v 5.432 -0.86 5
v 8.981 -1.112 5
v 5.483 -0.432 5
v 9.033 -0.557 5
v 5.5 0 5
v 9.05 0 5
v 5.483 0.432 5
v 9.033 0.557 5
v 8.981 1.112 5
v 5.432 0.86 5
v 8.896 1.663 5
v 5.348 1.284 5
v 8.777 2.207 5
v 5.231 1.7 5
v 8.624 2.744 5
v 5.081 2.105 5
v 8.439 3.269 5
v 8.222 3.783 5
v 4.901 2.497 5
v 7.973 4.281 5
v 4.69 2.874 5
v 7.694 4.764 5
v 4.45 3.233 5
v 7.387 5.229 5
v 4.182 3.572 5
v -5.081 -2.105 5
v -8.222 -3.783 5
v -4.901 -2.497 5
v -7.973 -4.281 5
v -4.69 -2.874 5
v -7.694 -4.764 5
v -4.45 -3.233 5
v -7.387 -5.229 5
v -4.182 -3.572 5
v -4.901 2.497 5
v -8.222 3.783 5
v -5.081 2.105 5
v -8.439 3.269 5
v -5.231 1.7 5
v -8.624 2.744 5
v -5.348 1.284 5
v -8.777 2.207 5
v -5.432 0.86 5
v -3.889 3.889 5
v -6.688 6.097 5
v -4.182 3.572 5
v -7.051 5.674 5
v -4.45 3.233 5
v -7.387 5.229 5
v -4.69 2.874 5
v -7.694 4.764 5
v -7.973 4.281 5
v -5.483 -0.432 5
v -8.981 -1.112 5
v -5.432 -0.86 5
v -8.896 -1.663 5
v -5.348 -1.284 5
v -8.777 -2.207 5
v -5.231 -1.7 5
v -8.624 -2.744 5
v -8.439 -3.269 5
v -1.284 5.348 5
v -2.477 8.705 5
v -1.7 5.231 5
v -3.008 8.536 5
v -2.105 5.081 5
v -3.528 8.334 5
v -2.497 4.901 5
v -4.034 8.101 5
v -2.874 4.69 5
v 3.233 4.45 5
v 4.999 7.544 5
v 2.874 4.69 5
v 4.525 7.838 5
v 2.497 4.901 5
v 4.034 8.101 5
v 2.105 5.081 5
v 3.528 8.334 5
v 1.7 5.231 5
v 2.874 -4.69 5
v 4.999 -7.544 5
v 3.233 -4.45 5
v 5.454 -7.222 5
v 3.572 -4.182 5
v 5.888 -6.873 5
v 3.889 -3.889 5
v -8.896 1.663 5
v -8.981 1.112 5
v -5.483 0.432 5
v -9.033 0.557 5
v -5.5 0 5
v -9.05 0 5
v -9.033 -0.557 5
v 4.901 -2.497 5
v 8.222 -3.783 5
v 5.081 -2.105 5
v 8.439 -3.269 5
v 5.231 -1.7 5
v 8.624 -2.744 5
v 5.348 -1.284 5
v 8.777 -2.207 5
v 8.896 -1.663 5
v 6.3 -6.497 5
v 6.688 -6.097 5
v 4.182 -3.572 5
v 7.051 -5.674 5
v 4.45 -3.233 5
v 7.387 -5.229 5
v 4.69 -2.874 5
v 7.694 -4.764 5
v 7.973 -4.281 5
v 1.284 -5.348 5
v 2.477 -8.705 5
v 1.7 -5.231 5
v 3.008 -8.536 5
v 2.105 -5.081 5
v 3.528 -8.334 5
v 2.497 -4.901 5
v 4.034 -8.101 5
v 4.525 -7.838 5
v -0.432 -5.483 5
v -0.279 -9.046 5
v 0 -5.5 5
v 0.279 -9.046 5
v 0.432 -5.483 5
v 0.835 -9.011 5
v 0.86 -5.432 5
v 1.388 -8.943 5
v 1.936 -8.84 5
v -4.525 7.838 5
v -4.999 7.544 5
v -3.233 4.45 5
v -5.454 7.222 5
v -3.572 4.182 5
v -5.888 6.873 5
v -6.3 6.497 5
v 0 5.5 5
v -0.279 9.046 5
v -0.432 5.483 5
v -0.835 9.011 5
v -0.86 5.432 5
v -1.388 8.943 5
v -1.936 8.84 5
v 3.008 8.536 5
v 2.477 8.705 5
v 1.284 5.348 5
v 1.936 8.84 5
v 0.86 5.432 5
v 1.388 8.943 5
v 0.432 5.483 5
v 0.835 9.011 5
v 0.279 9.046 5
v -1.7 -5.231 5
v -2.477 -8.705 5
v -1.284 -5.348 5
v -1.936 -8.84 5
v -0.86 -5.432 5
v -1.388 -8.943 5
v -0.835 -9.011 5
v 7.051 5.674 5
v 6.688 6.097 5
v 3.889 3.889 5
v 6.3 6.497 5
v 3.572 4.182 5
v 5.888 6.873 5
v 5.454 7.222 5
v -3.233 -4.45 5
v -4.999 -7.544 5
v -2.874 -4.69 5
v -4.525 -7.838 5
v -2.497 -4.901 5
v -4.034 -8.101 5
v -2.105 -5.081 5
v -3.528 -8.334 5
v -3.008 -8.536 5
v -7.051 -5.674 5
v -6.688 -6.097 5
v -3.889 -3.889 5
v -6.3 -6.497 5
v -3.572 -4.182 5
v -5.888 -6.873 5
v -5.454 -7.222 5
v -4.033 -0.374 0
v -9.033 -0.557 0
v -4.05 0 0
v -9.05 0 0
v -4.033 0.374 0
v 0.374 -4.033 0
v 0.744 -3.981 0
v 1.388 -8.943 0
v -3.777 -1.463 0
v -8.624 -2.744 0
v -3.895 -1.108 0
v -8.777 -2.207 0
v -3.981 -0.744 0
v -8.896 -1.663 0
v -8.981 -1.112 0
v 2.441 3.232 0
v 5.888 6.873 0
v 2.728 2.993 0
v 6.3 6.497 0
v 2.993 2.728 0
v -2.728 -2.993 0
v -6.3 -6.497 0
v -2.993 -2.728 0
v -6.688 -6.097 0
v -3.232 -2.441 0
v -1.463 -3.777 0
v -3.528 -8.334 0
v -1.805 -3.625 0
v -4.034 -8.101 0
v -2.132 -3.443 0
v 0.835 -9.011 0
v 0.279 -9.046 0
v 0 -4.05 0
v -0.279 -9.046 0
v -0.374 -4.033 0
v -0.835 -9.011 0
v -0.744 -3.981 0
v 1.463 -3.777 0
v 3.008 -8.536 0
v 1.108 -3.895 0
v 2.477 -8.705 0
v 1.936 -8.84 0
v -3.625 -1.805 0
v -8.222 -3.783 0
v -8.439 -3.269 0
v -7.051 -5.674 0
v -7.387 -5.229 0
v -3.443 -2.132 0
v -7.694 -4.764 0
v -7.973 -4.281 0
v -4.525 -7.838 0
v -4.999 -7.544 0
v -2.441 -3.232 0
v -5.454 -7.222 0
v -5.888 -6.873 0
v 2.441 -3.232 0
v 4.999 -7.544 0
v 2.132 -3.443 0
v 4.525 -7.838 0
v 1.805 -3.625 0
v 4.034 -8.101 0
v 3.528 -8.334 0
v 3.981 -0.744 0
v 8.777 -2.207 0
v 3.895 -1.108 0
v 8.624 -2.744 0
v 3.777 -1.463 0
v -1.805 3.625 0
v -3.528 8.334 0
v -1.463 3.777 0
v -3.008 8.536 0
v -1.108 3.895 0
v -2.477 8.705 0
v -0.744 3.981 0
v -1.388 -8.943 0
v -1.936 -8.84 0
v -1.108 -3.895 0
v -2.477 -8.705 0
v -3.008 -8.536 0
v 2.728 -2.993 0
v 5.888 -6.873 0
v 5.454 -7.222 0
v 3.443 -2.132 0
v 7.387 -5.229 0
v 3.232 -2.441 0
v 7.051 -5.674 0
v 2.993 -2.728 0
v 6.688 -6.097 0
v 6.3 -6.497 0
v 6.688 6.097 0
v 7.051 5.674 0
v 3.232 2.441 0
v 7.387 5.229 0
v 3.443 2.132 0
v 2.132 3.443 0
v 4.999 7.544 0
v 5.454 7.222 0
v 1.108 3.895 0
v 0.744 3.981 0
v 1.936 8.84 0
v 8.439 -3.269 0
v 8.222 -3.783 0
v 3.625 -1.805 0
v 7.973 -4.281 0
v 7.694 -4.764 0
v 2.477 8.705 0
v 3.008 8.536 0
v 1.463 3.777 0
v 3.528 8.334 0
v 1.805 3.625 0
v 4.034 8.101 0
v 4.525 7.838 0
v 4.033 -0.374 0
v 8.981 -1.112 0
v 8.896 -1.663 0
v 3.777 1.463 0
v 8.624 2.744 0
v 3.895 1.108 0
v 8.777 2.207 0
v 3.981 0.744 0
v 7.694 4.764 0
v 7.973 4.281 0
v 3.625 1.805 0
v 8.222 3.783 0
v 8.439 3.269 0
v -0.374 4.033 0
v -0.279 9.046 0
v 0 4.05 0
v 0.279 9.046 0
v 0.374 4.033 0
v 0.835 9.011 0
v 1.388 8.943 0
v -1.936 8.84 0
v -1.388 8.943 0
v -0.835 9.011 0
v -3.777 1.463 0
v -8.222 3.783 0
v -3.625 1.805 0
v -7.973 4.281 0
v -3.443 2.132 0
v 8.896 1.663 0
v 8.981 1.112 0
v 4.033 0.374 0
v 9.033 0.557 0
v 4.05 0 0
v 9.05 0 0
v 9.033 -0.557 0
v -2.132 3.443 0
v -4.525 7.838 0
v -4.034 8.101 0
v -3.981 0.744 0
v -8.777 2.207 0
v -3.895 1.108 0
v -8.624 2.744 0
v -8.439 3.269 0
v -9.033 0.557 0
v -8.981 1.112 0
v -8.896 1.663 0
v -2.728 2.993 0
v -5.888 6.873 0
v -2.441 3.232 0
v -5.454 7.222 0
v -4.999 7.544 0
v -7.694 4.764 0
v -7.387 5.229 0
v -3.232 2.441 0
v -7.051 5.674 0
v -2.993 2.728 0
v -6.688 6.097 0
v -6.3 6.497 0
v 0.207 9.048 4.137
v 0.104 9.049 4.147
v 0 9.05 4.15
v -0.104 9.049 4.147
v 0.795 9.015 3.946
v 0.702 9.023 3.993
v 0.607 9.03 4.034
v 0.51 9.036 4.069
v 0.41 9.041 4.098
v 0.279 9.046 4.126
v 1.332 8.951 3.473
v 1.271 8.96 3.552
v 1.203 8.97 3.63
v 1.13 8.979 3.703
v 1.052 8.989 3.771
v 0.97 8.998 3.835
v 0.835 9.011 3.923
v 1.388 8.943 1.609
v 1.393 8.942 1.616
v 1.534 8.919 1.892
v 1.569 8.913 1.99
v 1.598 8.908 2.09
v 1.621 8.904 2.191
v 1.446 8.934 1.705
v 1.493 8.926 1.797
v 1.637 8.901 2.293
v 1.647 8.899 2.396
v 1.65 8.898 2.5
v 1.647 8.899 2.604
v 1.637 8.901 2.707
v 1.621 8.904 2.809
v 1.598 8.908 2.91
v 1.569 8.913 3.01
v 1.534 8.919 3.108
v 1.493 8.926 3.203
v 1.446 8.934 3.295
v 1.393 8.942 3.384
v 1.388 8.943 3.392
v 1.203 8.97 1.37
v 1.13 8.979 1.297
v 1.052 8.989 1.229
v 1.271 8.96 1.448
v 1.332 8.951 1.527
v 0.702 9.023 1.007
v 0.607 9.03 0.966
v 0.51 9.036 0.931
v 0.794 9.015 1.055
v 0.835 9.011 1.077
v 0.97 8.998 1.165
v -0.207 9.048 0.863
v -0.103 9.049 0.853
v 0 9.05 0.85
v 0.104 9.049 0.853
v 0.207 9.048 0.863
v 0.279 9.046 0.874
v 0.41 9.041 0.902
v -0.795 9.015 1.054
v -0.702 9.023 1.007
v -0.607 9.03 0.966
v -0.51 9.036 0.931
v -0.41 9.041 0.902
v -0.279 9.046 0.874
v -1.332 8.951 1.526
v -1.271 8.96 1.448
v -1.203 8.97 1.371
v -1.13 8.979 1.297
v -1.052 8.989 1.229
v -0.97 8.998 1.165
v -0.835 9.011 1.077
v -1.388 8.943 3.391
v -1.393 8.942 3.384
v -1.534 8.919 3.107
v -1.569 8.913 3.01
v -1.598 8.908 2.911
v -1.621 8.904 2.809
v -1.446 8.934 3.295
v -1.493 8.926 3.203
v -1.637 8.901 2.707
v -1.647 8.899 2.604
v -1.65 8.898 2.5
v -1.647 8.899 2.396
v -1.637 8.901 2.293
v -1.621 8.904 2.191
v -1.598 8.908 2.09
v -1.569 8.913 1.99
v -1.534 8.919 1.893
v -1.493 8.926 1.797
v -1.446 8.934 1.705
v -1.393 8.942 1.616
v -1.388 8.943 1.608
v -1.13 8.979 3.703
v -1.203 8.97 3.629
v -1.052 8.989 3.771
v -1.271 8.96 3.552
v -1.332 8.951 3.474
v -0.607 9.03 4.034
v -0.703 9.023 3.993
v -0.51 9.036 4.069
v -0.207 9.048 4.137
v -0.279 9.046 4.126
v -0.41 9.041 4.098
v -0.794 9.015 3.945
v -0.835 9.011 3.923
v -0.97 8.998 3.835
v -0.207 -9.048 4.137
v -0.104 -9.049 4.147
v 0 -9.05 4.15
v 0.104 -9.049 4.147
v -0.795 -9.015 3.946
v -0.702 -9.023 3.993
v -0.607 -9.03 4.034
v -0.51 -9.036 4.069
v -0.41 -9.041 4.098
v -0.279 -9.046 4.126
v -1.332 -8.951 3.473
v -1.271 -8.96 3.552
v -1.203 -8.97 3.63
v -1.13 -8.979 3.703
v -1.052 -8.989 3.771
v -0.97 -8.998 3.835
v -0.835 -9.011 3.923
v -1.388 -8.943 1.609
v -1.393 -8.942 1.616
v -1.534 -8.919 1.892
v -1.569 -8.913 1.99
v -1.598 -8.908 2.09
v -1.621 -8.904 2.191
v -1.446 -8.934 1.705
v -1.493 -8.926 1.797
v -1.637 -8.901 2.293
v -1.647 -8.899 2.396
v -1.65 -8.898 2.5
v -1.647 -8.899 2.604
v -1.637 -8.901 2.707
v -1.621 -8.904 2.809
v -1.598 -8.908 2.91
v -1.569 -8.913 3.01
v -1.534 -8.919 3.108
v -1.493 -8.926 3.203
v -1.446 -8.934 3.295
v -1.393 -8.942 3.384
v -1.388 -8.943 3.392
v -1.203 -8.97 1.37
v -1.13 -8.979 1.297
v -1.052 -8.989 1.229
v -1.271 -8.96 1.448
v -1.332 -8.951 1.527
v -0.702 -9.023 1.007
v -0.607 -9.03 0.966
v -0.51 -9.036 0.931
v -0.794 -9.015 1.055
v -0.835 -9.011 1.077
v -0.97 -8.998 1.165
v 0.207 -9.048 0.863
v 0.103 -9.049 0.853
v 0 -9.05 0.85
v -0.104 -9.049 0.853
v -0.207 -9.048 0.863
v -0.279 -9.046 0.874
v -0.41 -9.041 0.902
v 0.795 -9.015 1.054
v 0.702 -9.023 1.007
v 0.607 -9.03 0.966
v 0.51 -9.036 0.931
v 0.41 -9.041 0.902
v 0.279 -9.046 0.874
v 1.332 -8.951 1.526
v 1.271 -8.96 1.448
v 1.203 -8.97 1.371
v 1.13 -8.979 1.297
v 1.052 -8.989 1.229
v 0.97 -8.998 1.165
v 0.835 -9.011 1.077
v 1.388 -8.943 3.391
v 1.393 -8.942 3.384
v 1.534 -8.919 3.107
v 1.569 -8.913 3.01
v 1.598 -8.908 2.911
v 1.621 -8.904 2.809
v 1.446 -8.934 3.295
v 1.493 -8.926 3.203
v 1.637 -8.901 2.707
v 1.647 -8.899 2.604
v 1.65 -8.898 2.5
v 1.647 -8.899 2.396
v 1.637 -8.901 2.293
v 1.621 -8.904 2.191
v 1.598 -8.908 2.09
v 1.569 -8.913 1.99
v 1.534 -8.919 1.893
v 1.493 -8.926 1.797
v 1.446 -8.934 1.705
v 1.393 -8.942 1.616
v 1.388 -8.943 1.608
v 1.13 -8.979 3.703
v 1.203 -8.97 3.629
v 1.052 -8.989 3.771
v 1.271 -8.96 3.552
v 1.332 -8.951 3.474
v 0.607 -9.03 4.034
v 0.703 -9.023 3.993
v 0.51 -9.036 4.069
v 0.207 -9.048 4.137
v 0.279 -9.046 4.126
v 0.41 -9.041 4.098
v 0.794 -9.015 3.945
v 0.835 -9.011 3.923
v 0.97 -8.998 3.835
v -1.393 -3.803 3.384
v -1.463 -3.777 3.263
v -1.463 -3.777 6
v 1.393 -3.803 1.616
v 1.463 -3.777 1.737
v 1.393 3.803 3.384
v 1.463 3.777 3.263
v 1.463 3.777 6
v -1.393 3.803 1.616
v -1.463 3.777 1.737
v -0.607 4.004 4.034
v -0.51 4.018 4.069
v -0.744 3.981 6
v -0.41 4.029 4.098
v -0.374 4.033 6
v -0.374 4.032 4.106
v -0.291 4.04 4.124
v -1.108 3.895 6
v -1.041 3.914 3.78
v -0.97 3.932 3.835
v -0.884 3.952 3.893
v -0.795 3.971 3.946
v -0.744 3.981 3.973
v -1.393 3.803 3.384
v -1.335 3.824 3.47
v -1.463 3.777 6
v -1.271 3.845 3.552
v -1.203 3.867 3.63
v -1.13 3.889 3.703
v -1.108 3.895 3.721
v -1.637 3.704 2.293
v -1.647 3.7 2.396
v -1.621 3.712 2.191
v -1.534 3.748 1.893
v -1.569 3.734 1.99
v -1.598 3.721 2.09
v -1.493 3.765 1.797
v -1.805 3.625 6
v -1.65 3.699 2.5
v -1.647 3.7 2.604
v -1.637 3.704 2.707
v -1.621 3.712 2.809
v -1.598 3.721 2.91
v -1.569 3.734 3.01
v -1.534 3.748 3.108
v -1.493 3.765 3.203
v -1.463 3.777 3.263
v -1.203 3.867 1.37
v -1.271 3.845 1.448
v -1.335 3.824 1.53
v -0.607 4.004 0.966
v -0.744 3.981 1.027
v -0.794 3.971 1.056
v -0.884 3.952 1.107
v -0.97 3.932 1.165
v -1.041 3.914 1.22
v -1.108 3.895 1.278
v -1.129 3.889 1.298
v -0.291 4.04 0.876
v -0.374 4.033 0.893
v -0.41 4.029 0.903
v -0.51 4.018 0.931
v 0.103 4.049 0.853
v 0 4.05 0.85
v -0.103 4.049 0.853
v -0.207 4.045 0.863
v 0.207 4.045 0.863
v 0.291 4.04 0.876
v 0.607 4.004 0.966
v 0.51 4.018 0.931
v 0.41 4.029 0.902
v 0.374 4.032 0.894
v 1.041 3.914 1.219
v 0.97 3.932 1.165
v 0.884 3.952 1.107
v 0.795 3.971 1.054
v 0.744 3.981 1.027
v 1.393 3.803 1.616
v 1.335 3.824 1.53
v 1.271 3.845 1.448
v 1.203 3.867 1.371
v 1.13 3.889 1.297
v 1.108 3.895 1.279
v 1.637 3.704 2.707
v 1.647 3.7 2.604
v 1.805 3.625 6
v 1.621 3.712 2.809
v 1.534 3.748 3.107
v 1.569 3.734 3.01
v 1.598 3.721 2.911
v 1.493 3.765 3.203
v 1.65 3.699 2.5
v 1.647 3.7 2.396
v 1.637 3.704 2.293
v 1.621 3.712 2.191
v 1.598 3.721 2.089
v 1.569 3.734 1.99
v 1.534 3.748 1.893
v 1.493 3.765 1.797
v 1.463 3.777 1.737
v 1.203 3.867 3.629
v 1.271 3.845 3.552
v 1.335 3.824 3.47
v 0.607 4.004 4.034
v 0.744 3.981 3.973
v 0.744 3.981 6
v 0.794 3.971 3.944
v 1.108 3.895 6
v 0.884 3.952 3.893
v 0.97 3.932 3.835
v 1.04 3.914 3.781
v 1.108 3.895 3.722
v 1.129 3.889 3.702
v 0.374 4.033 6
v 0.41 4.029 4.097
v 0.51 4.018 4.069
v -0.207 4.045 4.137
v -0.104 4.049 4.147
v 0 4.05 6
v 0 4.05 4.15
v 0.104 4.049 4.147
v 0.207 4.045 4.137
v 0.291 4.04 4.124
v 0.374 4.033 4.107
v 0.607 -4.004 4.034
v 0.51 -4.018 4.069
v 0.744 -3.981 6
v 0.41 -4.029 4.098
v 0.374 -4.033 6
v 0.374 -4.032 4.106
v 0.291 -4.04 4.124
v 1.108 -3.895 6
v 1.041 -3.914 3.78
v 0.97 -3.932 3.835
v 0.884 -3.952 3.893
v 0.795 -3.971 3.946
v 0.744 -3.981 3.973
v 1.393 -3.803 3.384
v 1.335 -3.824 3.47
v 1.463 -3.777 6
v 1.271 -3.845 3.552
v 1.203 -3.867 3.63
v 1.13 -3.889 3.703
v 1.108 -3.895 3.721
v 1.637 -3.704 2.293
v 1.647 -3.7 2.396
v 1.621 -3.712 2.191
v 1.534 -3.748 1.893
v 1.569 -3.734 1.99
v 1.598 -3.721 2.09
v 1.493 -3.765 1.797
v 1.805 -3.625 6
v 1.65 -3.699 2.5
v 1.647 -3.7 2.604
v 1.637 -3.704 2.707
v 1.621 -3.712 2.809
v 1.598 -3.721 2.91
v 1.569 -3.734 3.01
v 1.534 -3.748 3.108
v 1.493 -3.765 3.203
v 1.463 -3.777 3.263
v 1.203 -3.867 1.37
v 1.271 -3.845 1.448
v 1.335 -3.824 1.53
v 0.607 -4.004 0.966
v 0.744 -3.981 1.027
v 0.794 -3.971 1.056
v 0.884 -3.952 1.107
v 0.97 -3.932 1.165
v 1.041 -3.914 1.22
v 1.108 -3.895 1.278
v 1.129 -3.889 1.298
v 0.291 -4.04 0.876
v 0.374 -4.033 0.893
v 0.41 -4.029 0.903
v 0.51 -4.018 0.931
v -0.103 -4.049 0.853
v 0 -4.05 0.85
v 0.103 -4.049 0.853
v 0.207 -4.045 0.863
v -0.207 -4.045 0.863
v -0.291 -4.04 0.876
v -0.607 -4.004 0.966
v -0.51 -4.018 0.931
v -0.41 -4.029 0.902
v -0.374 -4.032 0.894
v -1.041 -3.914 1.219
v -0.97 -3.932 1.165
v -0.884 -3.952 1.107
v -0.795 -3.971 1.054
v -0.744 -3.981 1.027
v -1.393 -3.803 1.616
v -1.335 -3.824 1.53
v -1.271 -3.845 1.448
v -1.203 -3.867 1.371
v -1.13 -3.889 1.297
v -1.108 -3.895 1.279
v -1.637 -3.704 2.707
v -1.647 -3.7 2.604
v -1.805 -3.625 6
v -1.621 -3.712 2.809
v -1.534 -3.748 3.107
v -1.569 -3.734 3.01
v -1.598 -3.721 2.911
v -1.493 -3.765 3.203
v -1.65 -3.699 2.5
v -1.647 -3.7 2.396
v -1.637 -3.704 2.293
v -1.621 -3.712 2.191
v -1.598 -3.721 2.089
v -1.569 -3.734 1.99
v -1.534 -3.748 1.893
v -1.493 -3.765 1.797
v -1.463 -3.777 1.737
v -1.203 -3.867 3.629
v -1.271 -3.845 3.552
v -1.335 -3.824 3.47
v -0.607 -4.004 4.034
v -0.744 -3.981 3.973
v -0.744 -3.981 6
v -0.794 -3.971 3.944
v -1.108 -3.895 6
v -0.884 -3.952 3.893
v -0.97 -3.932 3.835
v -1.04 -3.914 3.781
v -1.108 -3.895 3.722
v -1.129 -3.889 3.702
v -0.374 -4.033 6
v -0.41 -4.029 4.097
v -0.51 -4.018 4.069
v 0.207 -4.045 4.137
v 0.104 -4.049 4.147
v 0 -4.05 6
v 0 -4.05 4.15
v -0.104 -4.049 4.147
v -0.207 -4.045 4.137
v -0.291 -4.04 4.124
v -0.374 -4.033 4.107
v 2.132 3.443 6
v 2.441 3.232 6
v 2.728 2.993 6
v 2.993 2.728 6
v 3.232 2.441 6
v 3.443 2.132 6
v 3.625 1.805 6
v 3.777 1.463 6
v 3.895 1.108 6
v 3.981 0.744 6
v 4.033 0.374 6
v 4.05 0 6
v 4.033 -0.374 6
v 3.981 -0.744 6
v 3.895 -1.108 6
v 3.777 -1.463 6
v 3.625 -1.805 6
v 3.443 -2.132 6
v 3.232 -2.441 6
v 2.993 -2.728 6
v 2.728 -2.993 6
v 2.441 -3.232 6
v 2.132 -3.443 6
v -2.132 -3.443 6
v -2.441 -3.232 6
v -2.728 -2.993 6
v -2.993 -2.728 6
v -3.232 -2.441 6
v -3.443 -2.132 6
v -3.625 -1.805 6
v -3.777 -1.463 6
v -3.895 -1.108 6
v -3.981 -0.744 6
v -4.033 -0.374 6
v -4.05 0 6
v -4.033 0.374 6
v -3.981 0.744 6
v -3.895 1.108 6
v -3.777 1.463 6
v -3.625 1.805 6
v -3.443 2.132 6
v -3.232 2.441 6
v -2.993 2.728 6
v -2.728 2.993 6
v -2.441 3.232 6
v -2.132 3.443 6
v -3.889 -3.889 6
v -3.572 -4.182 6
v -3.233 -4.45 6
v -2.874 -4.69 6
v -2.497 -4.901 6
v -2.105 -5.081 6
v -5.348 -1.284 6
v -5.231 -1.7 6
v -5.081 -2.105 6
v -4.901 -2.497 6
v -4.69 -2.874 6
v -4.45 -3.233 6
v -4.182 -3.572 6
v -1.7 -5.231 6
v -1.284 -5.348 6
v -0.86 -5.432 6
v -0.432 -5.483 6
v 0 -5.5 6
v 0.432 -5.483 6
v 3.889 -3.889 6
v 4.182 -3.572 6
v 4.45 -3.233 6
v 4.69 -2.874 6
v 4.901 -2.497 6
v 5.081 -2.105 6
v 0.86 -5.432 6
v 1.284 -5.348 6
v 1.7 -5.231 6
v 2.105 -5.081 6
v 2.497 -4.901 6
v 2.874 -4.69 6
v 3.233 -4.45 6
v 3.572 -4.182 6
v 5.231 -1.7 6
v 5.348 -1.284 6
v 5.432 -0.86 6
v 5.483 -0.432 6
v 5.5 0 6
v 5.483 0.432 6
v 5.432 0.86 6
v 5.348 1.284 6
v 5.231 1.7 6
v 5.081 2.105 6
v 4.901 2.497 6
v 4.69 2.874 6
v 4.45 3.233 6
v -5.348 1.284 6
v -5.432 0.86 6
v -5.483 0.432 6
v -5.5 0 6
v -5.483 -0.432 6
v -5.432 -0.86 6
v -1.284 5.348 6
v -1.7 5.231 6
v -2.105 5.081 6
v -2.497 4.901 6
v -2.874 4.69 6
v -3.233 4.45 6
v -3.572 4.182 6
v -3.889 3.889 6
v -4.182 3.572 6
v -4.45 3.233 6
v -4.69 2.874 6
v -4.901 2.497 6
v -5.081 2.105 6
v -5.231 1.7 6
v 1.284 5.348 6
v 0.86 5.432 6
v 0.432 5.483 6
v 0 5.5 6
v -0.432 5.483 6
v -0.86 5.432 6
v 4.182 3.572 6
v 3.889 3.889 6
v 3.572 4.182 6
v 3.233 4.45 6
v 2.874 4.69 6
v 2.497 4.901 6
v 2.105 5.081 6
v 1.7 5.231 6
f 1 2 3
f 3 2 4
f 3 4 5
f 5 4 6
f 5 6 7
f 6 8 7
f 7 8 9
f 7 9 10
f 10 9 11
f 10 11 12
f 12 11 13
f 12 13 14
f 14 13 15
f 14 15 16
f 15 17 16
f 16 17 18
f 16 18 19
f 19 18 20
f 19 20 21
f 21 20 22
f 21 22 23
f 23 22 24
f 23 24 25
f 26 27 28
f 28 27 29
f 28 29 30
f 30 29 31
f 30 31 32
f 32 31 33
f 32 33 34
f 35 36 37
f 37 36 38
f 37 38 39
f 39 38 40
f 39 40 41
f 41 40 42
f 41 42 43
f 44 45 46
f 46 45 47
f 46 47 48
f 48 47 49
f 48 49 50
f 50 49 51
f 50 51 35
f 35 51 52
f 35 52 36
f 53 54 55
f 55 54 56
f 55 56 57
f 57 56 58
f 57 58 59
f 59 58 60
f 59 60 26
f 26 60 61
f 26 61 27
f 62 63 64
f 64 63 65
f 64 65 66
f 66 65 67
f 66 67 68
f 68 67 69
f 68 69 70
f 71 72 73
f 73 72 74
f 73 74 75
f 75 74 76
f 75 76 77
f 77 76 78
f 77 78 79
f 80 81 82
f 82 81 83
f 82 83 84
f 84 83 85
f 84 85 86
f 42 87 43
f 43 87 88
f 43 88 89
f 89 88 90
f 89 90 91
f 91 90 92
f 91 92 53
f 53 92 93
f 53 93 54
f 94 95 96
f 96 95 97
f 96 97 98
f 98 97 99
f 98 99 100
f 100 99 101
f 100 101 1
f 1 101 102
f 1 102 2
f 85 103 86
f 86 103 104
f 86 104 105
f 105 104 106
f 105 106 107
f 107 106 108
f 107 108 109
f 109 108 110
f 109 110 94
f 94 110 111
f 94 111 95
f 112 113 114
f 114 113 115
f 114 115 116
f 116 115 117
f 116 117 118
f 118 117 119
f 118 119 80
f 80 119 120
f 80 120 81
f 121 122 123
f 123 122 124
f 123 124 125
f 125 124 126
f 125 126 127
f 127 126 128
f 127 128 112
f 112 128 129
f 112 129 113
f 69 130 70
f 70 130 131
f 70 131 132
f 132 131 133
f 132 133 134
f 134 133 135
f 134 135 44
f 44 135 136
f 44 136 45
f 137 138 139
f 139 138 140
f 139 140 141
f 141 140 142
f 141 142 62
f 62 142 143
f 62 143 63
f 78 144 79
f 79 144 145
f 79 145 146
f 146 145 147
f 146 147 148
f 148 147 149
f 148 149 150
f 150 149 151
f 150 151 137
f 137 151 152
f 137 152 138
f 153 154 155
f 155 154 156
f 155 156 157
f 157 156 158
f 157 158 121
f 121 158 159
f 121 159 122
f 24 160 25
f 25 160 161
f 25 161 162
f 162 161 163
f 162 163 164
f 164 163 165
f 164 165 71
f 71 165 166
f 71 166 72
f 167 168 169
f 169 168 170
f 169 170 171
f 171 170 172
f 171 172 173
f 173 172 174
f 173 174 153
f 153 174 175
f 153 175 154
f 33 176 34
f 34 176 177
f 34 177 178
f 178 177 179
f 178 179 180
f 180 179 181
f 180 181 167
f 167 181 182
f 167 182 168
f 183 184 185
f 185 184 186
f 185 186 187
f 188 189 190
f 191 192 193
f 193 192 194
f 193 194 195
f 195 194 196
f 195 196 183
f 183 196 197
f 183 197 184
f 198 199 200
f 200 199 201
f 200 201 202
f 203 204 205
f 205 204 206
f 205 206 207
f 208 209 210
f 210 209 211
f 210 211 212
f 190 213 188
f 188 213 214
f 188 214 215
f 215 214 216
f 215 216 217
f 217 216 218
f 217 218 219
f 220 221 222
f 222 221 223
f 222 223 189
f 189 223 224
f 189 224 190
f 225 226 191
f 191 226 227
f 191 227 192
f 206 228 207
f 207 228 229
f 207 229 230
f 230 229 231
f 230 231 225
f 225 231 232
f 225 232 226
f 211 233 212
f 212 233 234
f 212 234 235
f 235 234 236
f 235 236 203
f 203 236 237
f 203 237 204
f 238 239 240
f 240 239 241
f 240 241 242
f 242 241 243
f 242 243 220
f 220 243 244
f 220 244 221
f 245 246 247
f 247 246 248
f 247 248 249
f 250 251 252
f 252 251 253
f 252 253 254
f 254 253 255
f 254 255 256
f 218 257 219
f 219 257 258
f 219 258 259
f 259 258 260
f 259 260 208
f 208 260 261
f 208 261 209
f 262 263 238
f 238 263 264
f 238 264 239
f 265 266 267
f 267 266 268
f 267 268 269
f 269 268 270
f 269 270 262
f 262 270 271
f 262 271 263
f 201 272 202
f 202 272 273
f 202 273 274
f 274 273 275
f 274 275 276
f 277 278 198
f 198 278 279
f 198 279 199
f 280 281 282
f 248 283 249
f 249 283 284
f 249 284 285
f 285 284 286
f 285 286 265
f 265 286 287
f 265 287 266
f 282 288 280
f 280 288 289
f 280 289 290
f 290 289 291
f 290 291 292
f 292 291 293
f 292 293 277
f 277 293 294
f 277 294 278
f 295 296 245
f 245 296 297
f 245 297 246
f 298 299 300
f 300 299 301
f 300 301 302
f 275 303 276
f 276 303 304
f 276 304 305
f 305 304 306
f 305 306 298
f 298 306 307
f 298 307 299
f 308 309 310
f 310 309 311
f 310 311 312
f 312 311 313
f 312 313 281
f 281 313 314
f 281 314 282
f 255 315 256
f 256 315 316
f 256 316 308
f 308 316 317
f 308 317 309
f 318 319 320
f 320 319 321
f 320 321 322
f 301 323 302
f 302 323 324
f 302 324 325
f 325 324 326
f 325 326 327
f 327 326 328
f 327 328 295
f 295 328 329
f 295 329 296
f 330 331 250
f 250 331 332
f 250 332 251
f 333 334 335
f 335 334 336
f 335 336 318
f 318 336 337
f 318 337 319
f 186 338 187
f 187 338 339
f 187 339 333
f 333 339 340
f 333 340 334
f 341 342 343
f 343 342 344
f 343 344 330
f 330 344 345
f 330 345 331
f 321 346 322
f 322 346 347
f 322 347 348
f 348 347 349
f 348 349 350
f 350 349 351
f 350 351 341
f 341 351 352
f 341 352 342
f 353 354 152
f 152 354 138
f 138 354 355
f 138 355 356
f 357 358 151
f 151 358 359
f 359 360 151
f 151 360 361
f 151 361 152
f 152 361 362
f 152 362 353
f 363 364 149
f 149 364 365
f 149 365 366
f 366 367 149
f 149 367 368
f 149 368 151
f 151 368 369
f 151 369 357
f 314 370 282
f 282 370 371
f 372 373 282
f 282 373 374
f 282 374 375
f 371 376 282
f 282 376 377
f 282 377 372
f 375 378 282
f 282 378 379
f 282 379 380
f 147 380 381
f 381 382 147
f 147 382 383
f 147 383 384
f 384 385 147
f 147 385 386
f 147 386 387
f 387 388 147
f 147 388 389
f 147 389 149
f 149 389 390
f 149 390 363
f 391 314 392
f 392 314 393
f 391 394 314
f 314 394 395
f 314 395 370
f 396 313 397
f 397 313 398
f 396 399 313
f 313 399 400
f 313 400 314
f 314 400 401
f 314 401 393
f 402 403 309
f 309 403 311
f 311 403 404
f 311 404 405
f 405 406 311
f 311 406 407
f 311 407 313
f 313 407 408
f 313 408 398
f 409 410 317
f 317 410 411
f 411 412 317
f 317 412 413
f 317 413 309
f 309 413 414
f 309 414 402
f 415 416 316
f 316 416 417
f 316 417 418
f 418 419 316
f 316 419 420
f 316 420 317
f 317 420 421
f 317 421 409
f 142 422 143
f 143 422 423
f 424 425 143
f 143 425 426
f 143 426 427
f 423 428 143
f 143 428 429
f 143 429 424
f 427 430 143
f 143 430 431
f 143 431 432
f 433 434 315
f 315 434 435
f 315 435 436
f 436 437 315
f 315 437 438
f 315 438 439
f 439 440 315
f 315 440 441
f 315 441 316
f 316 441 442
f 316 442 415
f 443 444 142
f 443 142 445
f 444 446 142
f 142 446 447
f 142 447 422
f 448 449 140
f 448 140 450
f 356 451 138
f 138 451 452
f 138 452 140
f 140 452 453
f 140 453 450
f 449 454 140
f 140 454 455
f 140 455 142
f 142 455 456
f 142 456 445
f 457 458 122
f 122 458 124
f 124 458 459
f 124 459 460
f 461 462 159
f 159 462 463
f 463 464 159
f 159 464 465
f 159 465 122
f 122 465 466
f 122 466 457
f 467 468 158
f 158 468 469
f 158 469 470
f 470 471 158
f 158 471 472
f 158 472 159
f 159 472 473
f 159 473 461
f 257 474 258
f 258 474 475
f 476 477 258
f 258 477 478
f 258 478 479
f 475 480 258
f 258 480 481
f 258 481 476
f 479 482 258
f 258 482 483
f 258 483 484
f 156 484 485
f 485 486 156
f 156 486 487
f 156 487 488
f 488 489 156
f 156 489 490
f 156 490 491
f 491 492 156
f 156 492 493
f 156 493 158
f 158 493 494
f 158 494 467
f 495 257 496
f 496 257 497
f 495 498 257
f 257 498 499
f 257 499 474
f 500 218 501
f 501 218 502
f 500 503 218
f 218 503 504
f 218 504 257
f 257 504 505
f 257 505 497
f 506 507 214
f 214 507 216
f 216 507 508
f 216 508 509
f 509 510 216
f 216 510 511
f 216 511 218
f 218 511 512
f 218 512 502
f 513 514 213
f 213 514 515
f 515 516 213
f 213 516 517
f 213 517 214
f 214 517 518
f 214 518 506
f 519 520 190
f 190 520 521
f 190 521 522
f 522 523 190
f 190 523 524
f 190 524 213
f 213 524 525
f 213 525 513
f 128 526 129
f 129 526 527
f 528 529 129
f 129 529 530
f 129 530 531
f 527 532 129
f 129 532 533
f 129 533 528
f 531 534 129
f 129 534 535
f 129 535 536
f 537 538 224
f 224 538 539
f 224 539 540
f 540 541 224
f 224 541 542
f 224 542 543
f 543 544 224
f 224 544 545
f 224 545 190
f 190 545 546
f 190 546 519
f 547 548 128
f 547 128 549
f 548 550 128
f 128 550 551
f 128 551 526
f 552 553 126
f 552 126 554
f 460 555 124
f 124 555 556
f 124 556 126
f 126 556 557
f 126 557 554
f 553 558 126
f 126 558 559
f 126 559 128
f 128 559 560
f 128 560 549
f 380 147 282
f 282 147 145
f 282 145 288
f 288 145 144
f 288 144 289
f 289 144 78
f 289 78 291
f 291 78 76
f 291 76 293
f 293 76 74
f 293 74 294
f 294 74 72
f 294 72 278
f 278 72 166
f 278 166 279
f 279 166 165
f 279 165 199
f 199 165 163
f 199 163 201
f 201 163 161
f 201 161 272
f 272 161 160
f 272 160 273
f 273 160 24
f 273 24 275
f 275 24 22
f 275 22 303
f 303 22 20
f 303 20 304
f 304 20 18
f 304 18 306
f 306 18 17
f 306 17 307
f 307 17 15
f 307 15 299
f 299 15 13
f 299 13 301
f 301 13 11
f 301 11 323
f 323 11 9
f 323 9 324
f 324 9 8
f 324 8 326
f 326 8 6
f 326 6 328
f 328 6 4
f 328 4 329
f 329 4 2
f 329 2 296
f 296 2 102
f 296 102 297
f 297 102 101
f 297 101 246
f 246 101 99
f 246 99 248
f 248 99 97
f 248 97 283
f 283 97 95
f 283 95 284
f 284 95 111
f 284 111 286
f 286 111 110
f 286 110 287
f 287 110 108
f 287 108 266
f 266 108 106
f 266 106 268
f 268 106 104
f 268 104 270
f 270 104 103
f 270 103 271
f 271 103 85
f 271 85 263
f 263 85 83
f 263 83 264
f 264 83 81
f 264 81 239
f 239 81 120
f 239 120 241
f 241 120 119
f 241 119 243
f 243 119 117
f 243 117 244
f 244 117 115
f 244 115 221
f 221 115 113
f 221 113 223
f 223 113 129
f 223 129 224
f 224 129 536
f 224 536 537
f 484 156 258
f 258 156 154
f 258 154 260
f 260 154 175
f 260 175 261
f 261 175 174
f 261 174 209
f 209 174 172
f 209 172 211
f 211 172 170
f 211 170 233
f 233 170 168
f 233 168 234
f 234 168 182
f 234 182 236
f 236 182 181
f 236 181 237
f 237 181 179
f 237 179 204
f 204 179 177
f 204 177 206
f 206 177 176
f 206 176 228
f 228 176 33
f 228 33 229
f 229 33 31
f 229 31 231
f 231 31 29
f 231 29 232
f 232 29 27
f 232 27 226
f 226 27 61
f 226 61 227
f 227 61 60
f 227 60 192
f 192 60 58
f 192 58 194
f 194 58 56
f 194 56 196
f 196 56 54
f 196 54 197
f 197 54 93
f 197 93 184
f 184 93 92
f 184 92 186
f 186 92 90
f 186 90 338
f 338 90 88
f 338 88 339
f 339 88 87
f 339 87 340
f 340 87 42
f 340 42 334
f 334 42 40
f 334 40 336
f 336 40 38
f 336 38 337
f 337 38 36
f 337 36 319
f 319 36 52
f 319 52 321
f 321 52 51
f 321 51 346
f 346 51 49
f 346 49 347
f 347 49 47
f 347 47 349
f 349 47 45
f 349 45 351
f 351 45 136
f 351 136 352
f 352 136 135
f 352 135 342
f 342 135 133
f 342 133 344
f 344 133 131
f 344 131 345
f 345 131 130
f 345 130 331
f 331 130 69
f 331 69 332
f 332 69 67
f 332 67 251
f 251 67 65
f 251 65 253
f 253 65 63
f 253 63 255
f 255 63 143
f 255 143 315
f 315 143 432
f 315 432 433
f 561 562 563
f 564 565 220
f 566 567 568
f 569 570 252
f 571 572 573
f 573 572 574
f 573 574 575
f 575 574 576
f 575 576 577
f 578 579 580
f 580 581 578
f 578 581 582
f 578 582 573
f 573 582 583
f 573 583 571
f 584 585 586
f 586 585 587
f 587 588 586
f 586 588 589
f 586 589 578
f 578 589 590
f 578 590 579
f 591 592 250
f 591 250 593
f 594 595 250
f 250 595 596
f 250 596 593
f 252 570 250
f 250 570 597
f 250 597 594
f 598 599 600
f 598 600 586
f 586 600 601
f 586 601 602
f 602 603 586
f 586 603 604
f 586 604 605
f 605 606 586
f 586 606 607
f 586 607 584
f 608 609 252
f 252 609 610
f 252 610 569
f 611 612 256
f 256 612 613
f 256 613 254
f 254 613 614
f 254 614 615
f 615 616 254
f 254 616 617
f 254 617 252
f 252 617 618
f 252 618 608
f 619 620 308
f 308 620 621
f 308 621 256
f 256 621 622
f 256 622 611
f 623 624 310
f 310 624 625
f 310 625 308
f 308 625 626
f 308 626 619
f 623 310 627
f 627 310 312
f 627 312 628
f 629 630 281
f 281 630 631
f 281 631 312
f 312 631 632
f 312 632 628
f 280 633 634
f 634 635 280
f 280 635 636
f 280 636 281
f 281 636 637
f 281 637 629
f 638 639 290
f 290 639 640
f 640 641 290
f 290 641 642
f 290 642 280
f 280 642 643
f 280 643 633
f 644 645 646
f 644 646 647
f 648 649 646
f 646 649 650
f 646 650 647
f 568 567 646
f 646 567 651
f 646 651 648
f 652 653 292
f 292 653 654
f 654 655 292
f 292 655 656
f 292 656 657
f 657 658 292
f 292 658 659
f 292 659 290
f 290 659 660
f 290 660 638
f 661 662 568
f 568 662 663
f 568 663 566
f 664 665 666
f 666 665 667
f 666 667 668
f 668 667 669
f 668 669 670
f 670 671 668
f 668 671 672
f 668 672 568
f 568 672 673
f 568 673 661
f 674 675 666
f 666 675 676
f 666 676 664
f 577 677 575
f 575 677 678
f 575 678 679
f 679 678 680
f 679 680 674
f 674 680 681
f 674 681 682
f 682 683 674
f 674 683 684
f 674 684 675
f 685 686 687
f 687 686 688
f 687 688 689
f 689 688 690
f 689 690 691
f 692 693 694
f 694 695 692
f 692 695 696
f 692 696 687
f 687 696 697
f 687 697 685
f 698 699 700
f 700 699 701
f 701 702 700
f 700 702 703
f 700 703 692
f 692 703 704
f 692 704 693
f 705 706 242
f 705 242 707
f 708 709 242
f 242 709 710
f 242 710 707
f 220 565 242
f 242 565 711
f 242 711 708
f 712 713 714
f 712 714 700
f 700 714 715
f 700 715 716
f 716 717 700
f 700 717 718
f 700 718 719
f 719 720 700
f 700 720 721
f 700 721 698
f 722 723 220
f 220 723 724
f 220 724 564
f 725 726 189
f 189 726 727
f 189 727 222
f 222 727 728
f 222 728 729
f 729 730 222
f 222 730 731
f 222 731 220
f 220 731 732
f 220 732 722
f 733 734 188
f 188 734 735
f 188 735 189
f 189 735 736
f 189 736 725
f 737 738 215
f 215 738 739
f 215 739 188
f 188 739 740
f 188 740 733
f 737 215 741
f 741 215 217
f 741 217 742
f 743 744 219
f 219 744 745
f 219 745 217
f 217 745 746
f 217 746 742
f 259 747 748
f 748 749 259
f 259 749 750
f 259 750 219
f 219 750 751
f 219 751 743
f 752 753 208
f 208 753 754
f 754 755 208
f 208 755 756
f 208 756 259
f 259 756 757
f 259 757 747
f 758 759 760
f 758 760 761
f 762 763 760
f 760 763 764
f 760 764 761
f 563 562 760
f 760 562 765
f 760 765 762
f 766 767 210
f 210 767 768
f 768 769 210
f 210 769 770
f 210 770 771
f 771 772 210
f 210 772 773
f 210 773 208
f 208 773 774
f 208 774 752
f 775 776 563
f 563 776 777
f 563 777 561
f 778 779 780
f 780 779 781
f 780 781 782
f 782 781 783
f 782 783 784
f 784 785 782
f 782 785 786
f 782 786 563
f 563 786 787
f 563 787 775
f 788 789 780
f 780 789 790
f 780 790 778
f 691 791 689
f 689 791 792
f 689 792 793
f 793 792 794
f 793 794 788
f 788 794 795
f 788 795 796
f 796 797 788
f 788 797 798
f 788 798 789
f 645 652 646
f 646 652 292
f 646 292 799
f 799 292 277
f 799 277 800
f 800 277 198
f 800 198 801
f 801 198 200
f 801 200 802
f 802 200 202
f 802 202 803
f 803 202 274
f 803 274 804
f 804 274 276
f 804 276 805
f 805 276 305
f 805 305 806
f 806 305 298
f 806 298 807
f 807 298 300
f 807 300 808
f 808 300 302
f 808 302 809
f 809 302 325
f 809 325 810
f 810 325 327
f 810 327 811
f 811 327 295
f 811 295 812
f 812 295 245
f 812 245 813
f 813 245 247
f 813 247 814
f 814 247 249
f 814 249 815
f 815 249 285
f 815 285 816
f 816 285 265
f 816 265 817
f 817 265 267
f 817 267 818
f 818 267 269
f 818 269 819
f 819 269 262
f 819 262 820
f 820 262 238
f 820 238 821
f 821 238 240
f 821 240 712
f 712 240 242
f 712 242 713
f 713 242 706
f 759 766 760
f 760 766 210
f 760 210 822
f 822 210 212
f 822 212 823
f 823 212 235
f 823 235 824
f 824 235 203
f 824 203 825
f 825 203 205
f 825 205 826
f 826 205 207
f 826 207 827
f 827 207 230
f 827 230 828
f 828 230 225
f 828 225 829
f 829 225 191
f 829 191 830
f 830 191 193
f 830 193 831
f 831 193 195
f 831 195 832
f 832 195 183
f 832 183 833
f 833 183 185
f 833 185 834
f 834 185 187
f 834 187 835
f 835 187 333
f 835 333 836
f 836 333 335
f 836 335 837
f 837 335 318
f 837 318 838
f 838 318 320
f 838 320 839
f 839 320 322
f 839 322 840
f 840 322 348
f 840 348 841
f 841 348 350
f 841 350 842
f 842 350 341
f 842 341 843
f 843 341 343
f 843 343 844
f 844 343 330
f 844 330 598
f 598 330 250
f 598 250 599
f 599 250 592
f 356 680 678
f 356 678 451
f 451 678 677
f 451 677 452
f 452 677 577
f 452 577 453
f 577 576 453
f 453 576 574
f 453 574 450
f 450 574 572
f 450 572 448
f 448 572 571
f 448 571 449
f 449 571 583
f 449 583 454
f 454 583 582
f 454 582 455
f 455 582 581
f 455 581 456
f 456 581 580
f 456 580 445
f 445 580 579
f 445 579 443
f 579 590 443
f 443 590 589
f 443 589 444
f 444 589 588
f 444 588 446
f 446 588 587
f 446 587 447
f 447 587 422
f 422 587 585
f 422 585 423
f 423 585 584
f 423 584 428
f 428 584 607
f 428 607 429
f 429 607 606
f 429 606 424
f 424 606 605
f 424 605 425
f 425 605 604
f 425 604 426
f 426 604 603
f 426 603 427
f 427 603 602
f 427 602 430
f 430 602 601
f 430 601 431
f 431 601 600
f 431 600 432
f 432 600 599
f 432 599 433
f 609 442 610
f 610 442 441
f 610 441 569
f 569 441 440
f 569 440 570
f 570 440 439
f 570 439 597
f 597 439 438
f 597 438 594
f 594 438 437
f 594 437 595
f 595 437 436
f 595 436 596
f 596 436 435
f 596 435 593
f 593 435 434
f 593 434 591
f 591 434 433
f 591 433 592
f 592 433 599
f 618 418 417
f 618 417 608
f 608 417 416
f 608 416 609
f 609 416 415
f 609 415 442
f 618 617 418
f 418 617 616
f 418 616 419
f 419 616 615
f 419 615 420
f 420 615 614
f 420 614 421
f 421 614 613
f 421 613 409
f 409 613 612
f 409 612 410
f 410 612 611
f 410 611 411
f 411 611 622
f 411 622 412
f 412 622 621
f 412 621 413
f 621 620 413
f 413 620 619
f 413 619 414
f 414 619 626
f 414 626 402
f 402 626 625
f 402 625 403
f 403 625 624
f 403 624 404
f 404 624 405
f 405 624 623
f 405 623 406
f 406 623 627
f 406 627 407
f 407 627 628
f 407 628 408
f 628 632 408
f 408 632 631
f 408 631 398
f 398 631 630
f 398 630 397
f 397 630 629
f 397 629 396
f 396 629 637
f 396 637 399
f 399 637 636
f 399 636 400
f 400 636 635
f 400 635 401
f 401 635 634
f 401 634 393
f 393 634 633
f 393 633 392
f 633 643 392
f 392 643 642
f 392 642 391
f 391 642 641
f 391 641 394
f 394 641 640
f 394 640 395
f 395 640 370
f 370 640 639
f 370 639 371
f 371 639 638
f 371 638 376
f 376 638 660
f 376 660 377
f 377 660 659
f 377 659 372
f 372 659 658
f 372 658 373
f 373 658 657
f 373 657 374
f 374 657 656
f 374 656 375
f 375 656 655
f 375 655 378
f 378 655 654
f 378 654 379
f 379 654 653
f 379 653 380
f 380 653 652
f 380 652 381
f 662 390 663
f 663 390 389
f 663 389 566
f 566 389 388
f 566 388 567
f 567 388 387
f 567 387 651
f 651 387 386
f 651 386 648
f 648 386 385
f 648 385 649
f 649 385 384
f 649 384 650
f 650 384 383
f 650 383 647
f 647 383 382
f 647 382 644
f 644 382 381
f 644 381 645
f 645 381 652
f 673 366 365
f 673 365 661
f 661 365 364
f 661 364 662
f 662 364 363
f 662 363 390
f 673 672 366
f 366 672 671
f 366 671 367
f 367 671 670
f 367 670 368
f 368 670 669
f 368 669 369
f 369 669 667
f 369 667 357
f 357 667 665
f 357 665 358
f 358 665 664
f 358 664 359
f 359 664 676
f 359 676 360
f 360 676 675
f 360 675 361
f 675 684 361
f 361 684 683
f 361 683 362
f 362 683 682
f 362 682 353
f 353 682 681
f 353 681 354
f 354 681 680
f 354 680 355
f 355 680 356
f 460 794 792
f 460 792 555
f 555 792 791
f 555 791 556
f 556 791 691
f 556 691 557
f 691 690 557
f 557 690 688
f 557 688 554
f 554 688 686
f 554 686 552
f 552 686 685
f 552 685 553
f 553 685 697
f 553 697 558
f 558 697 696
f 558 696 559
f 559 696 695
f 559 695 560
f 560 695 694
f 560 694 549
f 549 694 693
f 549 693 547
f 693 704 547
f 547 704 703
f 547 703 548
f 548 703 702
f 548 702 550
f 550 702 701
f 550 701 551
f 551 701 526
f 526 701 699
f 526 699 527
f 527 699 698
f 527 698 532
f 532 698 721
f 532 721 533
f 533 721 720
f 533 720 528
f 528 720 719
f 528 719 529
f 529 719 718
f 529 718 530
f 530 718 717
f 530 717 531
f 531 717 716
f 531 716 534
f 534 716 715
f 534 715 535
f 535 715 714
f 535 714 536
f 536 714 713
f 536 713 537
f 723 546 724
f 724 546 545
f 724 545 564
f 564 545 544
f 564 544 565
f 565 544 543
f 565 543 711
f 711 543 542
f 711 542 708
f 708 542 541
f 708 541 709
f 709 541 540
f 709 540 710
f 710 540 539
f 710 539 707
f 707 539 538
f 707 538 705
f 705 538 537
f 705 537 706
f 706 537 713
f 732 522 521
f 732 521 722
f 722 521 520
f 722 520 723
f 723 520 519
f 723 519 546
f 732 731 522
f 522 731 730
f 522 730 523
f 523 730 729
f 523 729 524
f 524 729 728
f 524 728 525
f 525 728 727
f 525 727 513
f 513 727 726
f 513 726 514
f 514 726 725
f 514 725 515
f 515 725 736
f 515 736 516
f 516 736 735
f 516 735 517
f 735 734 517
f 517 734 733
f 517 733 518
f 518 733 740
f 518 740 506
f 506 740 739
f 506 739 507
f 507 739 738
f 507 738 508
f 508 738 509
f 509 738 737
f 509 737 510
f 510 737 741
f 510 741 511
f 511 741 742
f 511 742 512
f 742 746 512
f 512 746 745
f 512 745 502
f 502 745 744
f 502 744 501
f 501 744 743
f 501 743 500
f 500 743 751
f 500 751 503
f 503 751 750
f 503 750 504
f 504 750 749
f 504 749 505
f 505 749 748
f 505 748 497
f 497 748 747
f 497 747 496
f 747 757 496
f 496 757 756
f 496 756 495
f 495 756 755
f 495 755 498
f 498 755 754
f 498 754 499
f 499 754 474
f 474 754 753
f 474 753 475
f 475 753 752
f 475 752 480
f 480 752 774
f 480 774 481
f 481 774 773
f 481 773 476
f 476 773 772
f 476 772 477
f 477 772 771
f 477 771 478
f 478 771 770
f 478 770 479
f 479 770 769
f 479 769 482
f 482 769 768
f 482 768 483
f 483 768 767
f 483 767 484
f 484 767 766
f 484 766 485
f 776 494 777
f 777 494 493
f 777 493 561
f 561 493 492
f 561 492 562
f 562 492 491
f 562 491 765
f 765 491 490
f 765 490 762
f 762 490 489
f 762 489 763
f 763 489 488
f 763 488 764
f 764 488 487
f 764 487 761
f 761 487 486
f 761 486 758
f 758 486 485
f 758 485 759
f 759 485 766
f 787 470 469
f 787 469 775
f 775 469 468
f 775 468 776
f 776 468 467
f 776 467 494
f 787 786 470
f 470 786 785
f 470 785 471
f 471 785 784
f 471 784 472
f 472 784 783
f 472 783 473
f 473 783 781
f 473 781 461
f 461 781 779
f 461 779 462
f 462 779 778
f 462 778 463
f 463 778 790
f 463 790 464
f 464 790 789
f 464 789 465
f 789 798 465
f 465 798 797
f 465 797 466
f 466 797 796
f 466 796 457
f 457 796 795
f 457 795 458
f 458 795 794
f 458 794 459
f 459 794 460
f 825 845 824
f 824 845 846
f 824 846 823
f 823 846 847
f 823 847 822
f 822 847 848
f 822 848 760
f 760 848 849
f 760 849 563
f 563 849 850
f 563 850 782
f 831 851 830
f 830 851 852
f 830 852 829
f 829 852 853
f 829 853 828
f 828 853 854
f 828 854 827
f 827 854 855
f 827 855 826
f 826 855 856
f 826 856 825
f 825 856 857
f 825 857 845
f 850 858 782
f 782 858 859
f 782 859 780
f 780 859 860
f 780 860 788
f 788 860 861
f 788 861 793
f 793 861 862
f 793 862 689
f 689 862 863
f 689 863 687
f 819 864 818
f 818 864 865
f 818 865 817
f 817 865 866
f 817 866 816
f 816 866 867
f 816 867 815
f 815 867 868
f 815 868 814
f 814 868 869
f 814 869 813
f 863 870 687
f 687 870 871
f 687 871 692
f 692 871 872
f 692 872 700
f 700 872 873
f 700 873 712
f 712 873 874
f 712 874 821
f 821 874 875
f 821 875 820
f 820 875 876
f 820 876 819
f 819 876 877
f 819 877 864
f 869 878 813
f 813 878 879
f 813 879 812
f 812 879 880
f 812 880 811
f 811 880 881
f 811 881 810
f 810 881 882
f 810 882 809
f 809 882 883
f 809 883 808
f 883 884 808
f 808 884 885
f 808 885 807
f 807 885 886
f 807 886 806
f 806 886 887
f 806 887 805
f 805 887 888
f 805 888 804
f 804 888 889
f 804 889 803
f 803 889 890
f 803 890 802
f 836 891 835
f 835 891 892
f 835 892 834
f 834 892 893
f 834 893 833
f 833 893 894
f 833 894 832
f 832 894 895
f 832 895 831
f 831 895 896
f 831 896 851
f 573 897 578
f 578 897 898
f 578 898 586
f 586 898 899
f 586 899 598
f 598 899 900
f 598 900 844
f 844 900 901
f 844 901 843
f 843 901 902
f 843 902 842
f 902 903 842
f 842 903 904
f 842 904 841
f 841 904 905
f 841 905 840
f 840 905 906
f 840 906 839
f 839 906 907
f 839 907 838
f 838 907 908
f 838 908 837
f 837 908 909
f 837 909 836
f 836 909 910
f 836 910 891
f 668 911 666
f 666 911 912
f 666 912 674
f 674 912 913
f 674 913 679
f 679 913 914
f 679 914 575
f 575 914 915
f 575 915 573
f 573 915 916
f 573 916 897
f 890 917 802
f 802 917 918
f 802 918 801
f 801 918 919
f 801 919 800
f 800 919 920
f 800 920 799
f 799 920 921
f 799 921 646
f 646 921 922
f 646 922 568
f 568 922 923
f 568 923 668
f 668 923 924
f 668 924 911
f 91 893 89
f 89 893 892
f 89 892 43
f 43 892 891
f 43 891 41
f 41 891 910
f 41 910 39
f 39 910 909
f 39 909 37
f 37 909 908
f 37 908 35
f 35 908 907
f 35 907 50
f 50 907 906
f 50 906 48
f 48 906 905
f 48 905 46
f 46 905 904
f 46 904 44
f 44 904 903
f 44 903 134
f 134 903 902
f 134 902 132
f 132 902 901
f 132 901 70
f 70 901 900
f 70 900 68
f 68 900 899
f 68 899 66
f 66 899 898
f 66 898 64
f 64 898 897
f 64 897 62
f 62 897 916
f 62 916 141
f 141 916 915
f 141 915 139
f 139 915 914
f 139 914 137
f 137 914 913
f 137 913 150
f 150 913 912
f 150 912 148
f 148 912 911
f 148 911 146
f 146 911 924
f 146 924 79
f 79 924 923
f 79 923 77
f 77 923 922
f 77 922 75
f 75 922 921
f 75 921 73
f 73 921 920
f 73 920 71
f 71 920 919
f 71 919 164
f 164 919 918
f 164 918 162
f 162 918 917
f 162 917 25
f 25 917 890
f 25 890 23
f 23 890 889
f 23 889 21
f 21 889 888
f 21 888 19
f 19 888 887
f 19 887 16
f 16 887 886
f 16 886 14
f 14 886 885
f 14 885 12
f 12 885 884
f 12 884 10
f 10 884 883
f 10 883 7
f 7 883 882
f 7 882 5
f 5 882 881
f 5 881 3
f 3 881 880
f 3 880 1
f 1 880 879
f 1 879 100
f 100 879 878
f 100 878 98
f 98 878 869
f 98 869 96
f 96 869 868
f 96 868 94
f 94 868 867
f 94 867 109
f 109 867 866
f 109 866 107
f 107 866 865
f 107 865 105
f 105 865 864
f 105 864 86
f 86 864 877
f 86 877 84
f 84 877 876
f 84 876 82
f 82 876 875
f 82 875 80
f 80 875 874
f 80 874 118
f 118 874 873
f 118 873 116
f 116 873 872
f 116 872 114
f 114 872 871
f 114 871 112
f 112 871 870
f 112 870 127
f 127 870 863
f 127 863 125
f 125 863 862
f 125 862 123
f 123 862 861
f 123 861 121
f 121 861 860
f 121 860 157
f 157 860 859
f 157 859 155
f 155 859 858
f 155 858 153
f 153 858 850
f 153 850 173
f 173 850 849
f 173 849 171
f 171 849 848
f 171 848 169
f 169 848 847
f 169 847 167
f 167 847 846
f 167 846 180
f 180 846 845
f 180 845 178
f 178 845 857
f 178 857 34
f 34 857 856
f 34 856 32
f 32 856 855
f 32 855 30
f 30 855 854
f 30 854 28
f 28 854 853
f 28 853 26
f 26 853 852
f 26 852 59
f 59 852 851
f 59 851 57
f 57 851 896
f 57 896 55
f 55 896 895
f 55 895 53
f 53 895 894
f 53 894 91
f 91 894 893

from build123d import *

# Parameters (mm, degrees)
ESQUISSE1_R                  = 9.05
ESQUISSE1_R_2                = 4.05
BOSS_EXTRU_1_DEPTH           = 5
ENL_V_MAT_EXTRU_1_DEPTH      = 14.740633173
ENL_V_MAT_EXTRU_1_DEPTH_BACK = 14.740633173
ESQUISSE2_R                  = 1.65
ESQUISSE3_R                  = 5.5
ESQUISSE3_R_2                = 4.05
BOSS_EXTRU_2_DEPTH           = 1


with BuildPart() as part:
    # Esquisse1 → Boss.-Extru.1 (new body)
    with BuildSketch(Plane.XY):
        Circle(ESQUISSE1_R)
        Circle(ESQUISSE1_R_2, mode=Mode.SUBTRACT)
    extrude(amount=BOSS_EXTRU_1_DEPTH)

    # Esquisse2 → Enlèv. mat.-Extru.1 (cut, two sides: drawn at the far end of the back side and taken through both)
    with BuildSketch(Plane(origin=(0, 0, 0), x_dir=(1, 0, 0), z_dir=(0, 1, 0)).offset(-ENL_V_MAT_EXTRU_1_DEPTH_BACK)):
        with Locations(Location((0, -2.5, 0), (0, 0, 270))):
            Circle(ESQUISSE2_R)
    extrude(amount=ENL_V_MAT_EXTRU_1_DEPTH + ENL_V_MAT_EXTRU_1_DEPTH_BACK, mode=Mode.SUBTRACT)

    # Esquisse3 → Boss.-Extru.2 (add)
    with BuildSketch(Plane.XY.offset(5)):
        Circle(ESQUISSE3_R)
        Circle(ESQUISSE3_R_2, mode=Mode.SUBTRACT)
    extrude(amount=BOSS_EXTRU_2_DEPTH)


solid = part.part
